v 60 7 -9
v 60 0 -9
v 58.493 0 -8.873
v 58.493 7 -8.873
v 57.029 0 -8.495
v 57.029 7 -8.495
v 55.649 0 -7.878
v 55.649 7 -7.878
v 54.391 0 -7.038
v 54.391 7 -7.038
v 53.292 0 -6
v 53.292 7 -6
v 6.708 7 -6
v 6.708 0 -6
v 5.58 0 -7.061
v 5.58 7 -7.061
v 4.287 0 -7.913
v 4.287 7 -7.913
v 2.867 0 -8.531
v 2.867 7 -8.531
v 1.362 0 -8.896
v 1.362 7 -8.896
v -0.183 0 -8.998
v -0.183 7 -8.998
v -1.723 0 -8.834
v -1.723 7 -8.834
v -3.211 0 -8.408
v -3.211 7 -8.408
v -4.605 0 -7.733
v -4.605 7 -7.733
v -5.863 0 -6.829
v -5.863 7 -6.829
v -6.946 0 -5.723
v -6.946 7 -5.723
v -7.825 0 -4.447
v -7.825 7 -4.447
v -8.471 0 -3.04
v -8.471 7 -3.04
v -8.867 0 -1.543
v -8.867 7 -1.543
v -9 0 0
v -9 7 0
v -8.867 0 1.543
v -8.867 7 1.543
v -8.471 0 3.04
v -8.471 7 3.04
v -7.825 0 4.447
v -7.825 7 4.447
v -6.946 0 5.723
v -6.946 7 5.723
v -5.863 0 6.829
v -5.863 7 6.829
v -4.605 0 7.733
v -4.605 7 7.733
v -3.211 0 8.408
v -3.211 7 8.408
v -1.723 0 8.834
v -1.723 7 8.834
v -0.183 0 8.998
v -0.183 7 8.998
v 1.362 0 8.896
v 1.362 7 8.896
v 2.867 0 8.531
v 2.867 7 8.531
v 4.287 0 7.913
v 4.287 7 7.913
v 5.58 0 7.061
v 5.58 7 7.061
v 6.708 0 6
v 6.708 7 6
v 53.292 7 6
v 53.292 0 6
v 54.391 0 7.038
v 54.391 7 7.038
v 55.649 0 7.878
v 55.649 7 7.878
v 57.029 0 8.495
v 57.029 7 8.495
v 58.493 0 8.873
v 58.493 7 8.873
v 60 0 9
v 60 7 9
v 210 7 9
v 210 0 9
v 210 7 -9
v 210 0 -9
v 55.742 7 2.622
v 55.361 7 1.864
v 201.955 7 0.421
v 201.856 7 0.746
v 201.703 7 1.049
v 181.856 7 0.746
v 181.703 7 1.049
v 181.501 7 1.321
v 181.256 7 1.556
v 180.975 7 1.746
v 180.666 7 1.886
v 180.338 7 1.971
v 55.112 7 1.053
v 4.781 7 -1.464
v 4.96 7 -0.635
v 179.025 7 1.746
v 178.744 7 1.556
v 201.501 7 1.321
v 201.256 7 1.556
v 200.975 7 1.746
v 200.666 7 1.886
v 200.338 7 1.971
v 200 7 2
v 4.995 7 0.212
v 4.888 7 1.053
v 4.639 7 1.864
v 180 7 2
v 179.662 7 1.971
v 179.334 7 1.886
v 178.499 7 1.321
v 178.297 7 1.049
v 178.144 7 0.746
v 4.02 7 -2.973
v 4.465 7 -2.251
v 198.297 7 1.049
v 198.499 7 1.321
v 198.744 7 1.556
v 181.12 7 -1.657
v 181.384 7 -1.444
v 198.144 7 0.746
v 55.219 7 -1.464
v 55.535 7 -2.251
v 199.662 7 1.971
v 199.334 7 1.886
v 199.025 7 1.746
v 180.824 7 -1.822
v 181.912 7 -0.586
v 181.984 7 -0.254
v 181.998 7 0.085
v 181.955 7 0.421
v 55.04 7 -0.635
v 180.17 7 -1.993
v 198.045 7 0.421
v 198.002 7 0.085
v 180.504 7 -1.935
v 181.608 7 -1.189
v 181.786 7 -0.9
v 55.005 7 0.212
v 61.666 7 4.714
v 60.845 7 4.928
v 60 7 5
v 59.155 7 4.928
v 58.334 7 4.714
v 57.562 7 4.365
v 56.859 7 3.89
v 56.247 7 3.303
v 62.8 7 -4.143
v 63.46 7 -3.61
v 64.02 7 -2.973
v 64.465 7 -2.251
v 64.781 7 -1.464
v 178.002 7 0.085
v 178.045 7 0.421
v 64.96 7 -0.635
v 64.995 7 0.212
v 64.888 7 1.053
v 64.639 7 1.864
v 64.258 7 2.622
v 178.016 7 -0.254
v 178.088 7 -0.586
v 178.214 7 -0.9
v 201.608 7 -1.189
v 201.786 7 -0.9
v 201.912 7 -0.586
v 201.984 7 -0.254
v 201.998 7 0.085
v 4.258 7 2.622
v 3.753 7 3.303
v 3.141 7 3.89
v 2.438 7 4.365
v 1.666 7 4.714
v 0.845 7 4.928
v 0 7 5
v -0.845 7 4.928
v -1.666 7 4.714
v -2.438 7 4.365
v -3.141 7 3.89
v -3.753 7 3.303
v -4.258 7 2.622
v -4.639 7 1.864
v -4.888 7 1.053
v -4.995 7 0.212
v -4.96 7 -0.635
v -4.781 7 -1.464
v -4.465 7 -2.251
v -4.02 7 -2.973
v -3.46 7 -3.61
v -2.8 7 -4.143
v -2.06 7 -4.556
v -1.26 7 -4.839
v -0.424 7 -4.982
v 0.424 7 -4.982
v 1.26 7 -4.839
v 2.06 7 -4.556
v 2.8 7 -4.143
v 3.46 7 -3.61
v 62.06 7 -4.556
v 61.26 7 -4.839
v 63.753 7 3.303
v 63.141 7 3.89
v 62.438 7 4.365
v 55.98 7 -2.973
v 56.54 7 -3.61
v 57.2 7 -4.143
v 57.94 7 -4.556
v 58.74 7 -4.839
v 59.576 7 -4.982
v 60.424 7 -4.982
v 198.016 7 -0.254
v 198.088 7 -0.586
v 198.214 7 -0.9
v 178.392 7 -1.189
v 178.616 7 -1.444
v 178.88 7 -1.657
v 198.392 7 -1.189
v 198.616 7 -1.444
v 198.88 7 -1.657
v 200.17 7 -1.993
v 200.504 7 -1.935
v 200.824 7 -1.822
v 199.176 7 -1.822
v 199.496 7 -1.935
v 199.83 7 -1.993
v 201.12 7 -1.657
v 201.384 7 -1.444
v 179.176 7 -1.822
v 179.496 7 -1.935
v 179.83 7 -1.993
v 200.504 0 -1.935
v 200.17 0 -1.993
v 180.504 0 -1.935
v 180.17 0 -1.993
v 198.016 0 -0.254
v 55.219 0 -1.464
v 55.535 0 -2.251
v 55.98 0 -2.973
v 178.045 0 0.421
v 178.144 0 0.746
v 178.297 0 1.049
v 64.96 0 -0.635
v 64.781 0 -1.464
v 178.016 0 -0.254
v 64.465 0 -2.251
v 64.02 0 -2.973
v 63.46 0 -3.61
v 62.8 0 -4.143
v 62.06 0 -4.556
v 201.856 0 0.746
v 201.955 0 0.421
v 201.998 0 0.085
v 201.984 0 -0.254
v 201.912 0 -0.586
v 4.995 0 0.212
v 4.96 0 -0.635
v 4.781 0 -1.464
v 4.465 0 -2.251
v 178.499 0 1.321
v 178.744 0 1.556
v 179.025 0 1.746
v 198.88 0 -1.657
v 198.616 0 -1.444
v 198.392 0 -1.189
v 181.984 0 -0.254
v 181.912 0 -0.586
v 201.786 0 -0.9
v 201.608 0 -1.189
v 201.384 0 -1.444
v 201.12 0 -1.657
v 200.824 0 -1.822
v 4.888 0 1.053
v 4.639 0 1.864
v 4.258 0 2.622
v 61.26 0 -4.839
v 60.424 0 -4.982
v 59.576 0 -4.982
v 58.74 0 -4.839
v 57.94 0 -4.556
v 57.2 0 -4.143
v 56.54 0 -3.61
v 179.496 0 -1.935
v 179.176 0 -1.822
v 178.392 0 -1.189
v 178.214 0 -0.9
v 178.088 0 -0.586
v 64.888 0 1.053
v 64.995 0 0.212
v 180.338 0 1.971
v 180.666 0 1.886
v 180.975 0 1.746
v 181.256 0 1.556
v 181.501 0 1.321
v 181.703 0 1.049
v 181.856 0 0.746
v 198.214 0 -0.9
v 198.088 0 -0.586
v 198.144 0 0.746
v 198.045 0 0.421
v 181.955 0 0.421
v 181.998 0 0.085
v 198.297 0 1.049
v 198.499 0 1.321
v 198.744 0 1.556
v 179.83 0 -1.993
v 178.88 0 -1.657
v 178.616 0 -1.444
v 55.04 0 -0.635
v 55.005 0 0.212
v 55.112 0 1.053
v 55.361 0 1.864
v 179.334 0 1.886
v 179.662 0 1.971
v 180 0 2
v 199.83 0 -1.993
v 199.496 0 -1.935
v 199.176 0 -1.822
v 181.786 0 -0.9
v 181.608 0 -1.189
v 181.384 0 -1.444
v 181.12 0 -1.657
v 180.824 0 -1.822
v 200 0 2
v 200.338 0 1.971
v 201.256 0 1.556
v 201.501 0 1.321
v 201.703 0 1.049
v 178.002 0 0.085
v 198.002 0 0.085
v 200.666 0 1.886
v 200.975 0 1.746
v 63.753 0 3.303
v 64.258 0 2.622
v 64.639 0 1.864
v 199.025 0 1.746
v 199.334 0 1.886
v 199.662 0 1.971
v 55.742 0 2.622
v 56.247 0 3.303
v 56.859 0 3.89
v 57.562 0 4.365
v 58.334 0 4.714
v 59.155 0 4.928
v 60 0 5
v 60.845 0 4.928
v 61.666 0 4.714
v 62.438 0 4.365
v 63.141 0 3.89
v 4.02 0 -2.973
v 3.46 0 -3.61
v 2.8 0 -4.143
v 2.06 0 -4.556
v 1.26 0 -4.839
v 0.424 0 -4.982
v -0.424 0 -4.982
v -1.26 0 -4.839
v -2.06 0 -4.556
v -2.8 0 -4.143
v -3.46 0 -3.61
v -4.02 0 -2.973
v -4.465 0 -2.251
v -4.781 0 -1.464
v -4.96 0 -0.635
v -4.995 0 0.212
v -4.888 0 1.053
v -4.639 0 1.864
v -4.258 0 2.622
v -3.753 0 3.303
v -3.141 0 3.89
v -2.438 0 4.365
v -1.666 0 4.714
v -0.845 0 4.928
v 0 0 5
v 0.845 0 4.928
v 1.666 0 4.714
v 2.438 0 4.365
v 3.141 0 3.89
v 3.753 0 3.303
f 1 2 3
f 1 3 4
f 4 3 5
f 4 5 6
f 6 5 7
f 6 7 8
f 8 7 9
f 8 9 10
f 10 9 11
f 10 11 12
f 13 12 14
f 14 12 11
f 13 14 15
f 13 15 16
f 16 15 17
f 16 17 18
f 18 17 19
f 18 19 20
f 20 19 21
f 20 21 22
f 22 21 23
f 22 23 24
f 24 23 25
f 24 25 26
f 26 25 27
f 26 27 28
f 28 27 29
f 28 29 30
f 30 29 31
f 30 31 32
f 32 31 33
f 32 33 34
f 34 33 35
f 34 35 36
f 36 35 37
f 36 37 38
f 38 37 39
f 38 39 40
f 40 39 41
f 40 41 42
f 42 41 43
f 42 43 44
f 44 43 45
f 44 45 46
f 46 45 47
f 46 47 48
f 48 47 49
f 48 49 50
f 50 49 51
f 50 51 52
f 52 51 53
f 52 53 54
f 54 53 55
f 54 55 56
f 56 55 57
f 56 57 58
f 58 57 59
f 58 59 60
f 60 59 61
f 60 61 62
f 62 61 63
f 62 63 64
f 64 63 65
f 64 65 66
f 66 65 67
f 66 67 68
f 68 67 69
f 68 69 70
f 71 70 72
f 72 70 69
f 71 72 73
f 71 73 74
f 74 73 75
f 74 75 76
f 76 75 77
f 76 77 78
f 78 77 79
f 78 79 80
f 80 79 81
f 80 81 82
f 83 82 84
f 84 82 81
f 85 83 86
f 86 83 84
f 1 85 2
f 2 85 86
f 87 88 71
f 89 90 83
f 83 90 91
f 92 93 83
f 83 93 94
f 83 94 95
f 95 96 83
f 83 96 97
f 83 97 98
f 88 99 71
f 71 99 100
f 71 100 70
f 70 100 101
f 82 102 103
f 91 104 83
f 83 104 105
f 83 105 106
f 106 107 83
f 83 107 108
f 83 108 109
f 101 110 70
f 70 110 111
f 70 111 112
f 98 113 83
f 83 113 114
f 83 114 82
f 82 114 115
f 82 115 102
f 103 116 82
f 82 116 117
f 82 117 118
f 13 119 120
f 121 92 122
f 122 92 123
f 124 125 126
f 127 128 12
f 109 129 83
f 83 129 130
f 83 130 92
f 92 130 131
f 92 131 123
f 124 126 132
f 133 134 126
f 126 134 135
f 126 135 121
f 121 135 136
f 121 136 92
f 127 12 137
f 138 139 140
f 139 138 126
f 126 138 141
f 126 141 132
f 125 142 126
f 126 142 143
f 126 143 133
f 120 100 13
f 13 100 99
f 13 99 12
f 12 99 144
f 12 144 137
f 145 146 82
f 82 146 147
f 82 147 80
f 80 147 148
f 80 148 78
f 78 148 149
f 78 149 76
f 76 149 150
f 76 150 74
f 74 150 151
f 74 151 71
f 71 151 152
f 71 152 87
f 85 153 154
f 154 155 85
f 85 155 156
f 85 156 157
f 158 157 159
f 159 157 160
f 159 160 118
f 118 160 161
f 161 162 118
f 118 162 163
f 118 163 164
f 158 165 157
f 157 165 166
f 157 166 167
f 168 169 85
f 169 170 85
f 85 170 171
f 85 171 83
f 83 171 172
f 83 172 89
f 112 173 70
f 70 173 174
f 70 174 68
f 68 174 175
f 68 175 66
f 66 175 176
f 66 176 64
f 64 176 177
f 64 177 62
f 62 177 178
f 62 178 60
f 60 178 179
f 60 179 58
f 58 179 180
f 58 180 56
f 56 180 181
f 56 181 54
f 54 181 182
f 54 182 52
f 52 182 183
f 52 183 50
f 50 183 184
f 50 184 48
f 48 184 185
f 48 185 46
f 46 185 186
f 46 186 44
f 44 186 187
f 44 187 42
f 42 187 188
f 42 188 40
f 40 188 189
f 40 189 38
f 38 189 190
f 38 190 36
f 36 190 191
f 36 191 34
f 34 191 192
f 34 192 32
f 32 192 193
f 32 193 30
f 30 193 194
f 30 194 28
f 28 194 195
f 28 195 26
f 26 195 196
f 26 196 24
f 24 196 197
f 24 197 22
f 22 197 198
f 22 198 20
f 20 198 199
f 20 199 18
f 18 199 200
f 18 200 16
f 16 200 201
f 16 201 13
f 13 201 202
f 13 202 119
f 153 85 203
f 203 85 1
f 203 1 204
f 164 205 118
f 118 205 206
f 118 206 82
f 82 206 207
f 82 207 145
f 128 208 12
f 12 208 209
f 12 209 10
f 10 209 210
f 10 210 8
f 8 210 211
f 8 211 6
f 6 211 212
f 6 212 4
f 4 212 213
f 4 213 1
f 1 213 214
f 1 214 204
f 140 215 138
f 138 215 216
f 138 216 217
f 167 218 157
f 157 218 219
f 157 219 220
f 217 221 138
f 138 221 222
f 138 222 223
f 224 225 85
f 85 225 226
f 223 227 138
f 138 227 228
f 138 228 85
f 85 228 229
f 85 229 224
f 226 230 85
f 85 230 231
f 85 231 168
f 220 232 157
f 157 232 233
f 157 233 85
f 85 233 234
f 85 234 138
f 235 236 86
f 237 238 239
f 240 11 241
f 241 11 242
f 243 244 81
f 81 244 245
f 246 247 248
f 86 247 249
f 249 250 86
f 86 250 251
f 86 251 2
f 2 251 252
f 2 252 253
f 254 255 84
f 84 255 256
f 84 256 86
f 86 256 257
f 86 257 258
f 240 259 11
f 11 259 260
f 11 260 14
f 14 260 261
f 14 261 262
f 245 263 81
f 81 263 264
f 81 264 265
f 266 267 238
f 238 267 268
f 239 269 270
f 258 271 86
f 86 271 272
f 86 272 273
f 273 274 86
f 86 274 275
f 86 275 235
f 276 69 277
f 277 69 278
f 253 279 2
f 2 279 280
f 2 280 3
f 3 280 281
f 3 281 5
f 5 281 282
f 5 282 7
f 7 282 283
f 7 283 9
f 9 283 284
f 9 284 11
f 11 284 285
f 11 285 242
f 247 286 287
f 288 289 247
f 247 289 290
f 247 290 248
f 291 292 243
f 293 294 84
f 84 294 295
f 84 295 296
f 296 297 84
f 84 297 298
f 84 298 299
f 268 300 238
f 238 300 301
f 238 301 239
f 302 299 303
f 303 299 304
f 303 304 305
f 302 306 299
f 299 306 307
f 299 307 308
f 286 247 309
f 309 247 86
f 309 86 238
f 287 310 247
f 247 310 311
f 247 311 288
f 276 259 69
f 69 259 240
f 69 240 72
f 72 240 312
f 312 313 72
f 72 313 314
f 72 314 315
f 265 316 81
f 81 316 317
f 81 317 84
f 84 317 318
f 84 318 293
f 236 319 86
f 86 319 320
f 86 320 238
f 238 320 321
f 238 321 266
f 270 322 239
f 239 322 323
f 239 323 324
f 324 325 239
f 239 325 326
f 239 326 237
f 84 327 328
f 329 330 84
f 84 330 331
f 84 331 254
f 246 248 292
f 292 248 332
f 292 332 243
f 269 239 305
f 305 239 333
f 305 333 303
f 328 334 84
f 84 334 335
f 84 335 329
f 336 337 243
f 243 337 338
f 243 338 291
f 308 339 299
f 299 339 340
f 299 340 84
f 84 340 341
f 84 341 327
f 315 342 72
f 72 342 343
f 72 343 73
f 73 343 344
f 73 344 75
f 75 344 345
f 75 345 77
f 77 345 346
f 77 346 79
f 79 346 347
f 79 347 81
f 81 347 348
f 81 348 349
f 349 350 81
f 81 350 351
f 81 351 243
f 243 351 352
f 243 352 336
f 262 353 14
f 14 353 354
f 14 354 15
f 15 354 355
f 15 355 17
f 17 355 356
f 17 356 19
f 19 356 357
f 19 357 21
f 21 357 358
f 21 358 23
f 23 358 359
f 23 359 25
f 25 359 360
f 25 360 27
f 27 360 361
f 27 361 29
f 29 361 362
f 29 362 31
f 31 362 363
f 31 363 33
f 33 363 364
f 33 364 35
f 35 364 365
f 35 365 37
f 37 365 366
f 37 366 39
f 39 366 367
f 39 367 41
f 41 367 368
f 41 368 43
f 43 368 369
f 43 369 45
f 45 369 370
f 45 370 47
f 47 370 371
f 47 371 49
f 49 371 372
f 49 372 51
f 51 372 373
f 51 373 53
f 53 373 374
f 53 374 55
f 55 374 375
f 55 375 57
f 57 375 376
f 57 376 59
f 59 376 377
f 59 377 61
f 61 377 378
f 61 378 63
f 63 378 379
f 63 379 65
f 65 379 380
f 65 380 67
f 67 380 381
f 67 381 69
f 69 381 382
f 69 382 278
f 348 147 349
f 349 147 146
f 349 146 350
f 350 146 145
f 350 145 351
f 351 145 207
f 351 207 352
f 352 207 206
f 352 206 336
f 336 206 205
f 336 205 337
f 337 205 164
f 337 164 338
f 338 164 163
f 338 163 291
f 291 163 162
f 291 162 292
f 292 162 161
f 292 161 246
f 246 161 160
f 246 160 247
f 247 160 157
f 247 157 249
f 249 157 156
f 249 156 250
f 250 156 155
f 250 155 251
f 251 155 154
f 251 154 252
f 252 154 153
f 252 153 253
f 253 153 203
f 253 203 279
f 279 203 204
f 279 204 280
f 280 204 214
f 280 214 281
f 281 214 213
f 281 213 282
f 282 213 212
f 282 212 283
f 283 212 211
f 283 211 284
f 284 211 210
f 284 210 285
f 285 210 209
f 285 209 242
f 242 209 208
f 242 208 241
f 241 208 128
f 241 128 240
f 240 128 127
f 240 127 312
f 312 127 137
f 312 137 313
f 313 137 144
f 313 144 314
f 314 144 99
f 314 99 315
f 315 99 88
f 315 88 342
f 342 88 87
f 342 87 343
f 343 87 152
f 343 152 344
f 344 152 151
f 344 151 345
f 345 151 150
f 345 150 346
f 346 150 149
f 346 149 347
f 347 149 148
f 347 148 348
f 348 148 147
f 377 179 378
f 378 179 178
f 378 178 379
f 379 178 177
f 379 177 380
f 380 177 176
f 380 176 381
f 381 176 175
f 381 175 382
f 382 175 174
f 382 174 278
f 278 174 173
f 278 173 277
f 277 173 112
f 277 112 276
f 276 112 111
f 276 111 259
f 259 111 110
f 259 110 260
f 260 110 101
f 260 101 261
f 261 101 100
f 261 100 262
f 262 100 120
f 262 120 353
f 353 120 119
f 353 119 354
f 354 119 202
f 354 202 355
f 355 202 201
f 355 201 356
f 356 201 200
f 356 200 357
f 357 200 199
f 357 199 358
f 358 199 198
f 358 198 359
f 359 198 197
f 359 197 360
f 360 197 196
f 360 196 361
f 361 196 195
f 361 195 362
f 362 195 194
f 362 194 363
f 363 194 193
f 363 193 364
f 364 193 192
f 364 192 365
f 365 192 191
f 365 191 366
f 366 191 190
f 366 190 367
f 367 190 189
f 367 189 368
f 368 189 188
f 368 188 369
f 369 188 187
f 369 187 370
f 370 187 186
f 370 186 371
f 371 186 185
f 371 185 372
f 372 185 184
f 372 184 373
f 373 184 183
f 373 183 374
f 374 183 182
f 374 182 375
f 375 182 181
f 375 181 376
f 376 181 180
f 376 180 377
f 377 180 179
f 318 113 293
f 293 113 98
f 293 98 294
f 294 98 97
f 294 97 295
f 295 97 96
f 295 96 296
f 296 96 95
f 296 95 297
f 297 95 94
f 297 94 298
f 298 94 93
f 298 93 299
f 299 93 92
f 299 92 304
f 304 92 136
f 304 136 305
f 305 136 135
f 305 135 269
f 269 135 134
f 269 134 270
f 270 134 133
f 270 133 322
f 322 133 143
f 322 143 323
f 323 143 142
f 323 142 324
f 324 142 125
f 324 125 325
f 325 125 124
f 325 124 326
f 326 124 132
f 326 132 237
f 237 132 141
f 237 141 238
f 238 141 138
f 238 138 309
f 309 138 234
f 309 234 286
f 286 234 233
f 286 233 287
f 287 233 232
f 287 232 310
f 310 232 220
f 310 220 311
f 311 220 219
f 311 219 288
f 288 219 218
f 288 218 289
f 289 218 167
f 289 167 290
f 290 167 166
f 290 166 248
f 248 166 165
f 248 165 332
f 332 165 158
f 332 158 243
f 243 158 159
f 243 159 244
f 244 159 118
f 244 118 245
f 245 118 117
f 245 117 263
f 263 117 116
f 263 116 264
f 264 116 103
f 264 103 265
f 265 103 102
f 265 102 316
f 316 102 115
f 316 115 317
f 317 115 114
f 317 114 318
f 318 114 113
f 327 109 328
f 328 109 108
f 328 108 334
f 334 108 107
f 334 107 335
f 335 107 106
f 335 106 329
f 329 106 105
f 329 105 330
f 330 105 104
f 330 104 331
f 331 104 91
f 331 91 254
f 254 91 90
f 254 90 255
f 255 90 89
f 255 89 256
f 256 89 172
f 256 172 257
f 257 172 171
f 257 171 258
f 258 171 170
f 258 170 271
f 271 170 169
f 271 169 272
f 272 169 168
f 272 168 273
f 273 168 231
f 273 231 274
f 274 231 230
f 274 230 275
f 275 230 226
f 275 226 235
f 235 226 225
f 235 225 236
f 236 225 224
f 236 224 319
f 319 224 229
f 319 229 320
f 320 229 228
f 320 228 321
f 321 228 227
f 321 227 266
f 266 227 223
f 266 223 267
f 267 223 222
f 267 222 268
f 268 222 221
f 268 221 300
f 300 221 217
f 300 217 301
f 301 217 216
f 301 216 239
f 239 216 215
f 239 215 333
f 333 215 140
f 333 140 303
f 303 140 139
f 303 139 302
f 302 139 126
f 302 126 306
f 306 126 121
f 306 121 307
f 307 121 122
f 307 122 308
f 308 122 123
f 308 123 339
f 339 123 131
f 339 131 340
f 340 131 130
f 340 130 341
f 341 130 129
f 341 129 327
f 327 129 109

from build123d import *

# Parameters (mm, degrees)
BOSS_EXTRUDE1_DEPTH = 7
SKETCH2_R           = 5
CUT_EXTRUDE1_DEPTH  = 211.309296038
SKETCH3_R           = 2
CUT_EXTRUDE2_DEPTH  = 211.309296038


with BuildPart() as part:
    # Sketch1 → Boss-Extrude1 (new body)
    with BuildSketch(Plane(origin=(0, 0, 0), x_dir=(1, 0, 0), z_dir=(0, 1, 0))):
        with BuildLine():
            Line((6.708203932, 6), (53.291796068, 6))
            ThreePointArc((53.291796068, 6), (56.325765386, 8.215838363), (60, 9))
            Line((60, 9), (210, 9))
            Line((210, 9), (210, -9))
            Line((210, -9), (60, -9))
            ThreePointArc((60, -9), (56.325765386, -8.215838363), (53.291796068, -6))
            Line((53.291796068, -6), (6.708203932, -6))
            ThreePointArc((6.708203932, -6), (-9, 0), (6.708203932, 6))
        make_face()
    extrude(amount=BOSS_EXTRUDE1_DEPTH)

    # Sketch2 → Cut-Extrude1 (cut, through all)
    with BuildSketch(Plane(origin=(0, 7, 0), x_dir=(1, 0, 0), z_dir=(0, 1, 0))):
        with Locations(Location((0, 0, 0), (0, 0, 270))):
            Circle(SKETCH2_R)
        with Locations(Location((60, 0, 0), (0, 0, 270))):
            Circle(SKETCH2_R)
    extrude(amount=-CUT_EXTRUDE1_DEPTH, mode=Mode.SUBTRACT)

    # Sketch3 → Cut-Extrude2 (cut, through all)
    with BuildSketch(Plane(origin=(0, 7, 0), x_dir=(1, 0, 0), z_dir=(0, 1, 0))):
        with Locations(Location((200, 0, 0), (0, 0, 270))):
            Circle(SKETCH3_R)
        with Locations(Location((180, 0, 0), (0, 0, 270))):
            Circle(SKETCH3_R)
    extrude(amount=-CUT_EXTRUDE2_DEPTH, mode=Mode.SUBTRACT)


solid = part.part
